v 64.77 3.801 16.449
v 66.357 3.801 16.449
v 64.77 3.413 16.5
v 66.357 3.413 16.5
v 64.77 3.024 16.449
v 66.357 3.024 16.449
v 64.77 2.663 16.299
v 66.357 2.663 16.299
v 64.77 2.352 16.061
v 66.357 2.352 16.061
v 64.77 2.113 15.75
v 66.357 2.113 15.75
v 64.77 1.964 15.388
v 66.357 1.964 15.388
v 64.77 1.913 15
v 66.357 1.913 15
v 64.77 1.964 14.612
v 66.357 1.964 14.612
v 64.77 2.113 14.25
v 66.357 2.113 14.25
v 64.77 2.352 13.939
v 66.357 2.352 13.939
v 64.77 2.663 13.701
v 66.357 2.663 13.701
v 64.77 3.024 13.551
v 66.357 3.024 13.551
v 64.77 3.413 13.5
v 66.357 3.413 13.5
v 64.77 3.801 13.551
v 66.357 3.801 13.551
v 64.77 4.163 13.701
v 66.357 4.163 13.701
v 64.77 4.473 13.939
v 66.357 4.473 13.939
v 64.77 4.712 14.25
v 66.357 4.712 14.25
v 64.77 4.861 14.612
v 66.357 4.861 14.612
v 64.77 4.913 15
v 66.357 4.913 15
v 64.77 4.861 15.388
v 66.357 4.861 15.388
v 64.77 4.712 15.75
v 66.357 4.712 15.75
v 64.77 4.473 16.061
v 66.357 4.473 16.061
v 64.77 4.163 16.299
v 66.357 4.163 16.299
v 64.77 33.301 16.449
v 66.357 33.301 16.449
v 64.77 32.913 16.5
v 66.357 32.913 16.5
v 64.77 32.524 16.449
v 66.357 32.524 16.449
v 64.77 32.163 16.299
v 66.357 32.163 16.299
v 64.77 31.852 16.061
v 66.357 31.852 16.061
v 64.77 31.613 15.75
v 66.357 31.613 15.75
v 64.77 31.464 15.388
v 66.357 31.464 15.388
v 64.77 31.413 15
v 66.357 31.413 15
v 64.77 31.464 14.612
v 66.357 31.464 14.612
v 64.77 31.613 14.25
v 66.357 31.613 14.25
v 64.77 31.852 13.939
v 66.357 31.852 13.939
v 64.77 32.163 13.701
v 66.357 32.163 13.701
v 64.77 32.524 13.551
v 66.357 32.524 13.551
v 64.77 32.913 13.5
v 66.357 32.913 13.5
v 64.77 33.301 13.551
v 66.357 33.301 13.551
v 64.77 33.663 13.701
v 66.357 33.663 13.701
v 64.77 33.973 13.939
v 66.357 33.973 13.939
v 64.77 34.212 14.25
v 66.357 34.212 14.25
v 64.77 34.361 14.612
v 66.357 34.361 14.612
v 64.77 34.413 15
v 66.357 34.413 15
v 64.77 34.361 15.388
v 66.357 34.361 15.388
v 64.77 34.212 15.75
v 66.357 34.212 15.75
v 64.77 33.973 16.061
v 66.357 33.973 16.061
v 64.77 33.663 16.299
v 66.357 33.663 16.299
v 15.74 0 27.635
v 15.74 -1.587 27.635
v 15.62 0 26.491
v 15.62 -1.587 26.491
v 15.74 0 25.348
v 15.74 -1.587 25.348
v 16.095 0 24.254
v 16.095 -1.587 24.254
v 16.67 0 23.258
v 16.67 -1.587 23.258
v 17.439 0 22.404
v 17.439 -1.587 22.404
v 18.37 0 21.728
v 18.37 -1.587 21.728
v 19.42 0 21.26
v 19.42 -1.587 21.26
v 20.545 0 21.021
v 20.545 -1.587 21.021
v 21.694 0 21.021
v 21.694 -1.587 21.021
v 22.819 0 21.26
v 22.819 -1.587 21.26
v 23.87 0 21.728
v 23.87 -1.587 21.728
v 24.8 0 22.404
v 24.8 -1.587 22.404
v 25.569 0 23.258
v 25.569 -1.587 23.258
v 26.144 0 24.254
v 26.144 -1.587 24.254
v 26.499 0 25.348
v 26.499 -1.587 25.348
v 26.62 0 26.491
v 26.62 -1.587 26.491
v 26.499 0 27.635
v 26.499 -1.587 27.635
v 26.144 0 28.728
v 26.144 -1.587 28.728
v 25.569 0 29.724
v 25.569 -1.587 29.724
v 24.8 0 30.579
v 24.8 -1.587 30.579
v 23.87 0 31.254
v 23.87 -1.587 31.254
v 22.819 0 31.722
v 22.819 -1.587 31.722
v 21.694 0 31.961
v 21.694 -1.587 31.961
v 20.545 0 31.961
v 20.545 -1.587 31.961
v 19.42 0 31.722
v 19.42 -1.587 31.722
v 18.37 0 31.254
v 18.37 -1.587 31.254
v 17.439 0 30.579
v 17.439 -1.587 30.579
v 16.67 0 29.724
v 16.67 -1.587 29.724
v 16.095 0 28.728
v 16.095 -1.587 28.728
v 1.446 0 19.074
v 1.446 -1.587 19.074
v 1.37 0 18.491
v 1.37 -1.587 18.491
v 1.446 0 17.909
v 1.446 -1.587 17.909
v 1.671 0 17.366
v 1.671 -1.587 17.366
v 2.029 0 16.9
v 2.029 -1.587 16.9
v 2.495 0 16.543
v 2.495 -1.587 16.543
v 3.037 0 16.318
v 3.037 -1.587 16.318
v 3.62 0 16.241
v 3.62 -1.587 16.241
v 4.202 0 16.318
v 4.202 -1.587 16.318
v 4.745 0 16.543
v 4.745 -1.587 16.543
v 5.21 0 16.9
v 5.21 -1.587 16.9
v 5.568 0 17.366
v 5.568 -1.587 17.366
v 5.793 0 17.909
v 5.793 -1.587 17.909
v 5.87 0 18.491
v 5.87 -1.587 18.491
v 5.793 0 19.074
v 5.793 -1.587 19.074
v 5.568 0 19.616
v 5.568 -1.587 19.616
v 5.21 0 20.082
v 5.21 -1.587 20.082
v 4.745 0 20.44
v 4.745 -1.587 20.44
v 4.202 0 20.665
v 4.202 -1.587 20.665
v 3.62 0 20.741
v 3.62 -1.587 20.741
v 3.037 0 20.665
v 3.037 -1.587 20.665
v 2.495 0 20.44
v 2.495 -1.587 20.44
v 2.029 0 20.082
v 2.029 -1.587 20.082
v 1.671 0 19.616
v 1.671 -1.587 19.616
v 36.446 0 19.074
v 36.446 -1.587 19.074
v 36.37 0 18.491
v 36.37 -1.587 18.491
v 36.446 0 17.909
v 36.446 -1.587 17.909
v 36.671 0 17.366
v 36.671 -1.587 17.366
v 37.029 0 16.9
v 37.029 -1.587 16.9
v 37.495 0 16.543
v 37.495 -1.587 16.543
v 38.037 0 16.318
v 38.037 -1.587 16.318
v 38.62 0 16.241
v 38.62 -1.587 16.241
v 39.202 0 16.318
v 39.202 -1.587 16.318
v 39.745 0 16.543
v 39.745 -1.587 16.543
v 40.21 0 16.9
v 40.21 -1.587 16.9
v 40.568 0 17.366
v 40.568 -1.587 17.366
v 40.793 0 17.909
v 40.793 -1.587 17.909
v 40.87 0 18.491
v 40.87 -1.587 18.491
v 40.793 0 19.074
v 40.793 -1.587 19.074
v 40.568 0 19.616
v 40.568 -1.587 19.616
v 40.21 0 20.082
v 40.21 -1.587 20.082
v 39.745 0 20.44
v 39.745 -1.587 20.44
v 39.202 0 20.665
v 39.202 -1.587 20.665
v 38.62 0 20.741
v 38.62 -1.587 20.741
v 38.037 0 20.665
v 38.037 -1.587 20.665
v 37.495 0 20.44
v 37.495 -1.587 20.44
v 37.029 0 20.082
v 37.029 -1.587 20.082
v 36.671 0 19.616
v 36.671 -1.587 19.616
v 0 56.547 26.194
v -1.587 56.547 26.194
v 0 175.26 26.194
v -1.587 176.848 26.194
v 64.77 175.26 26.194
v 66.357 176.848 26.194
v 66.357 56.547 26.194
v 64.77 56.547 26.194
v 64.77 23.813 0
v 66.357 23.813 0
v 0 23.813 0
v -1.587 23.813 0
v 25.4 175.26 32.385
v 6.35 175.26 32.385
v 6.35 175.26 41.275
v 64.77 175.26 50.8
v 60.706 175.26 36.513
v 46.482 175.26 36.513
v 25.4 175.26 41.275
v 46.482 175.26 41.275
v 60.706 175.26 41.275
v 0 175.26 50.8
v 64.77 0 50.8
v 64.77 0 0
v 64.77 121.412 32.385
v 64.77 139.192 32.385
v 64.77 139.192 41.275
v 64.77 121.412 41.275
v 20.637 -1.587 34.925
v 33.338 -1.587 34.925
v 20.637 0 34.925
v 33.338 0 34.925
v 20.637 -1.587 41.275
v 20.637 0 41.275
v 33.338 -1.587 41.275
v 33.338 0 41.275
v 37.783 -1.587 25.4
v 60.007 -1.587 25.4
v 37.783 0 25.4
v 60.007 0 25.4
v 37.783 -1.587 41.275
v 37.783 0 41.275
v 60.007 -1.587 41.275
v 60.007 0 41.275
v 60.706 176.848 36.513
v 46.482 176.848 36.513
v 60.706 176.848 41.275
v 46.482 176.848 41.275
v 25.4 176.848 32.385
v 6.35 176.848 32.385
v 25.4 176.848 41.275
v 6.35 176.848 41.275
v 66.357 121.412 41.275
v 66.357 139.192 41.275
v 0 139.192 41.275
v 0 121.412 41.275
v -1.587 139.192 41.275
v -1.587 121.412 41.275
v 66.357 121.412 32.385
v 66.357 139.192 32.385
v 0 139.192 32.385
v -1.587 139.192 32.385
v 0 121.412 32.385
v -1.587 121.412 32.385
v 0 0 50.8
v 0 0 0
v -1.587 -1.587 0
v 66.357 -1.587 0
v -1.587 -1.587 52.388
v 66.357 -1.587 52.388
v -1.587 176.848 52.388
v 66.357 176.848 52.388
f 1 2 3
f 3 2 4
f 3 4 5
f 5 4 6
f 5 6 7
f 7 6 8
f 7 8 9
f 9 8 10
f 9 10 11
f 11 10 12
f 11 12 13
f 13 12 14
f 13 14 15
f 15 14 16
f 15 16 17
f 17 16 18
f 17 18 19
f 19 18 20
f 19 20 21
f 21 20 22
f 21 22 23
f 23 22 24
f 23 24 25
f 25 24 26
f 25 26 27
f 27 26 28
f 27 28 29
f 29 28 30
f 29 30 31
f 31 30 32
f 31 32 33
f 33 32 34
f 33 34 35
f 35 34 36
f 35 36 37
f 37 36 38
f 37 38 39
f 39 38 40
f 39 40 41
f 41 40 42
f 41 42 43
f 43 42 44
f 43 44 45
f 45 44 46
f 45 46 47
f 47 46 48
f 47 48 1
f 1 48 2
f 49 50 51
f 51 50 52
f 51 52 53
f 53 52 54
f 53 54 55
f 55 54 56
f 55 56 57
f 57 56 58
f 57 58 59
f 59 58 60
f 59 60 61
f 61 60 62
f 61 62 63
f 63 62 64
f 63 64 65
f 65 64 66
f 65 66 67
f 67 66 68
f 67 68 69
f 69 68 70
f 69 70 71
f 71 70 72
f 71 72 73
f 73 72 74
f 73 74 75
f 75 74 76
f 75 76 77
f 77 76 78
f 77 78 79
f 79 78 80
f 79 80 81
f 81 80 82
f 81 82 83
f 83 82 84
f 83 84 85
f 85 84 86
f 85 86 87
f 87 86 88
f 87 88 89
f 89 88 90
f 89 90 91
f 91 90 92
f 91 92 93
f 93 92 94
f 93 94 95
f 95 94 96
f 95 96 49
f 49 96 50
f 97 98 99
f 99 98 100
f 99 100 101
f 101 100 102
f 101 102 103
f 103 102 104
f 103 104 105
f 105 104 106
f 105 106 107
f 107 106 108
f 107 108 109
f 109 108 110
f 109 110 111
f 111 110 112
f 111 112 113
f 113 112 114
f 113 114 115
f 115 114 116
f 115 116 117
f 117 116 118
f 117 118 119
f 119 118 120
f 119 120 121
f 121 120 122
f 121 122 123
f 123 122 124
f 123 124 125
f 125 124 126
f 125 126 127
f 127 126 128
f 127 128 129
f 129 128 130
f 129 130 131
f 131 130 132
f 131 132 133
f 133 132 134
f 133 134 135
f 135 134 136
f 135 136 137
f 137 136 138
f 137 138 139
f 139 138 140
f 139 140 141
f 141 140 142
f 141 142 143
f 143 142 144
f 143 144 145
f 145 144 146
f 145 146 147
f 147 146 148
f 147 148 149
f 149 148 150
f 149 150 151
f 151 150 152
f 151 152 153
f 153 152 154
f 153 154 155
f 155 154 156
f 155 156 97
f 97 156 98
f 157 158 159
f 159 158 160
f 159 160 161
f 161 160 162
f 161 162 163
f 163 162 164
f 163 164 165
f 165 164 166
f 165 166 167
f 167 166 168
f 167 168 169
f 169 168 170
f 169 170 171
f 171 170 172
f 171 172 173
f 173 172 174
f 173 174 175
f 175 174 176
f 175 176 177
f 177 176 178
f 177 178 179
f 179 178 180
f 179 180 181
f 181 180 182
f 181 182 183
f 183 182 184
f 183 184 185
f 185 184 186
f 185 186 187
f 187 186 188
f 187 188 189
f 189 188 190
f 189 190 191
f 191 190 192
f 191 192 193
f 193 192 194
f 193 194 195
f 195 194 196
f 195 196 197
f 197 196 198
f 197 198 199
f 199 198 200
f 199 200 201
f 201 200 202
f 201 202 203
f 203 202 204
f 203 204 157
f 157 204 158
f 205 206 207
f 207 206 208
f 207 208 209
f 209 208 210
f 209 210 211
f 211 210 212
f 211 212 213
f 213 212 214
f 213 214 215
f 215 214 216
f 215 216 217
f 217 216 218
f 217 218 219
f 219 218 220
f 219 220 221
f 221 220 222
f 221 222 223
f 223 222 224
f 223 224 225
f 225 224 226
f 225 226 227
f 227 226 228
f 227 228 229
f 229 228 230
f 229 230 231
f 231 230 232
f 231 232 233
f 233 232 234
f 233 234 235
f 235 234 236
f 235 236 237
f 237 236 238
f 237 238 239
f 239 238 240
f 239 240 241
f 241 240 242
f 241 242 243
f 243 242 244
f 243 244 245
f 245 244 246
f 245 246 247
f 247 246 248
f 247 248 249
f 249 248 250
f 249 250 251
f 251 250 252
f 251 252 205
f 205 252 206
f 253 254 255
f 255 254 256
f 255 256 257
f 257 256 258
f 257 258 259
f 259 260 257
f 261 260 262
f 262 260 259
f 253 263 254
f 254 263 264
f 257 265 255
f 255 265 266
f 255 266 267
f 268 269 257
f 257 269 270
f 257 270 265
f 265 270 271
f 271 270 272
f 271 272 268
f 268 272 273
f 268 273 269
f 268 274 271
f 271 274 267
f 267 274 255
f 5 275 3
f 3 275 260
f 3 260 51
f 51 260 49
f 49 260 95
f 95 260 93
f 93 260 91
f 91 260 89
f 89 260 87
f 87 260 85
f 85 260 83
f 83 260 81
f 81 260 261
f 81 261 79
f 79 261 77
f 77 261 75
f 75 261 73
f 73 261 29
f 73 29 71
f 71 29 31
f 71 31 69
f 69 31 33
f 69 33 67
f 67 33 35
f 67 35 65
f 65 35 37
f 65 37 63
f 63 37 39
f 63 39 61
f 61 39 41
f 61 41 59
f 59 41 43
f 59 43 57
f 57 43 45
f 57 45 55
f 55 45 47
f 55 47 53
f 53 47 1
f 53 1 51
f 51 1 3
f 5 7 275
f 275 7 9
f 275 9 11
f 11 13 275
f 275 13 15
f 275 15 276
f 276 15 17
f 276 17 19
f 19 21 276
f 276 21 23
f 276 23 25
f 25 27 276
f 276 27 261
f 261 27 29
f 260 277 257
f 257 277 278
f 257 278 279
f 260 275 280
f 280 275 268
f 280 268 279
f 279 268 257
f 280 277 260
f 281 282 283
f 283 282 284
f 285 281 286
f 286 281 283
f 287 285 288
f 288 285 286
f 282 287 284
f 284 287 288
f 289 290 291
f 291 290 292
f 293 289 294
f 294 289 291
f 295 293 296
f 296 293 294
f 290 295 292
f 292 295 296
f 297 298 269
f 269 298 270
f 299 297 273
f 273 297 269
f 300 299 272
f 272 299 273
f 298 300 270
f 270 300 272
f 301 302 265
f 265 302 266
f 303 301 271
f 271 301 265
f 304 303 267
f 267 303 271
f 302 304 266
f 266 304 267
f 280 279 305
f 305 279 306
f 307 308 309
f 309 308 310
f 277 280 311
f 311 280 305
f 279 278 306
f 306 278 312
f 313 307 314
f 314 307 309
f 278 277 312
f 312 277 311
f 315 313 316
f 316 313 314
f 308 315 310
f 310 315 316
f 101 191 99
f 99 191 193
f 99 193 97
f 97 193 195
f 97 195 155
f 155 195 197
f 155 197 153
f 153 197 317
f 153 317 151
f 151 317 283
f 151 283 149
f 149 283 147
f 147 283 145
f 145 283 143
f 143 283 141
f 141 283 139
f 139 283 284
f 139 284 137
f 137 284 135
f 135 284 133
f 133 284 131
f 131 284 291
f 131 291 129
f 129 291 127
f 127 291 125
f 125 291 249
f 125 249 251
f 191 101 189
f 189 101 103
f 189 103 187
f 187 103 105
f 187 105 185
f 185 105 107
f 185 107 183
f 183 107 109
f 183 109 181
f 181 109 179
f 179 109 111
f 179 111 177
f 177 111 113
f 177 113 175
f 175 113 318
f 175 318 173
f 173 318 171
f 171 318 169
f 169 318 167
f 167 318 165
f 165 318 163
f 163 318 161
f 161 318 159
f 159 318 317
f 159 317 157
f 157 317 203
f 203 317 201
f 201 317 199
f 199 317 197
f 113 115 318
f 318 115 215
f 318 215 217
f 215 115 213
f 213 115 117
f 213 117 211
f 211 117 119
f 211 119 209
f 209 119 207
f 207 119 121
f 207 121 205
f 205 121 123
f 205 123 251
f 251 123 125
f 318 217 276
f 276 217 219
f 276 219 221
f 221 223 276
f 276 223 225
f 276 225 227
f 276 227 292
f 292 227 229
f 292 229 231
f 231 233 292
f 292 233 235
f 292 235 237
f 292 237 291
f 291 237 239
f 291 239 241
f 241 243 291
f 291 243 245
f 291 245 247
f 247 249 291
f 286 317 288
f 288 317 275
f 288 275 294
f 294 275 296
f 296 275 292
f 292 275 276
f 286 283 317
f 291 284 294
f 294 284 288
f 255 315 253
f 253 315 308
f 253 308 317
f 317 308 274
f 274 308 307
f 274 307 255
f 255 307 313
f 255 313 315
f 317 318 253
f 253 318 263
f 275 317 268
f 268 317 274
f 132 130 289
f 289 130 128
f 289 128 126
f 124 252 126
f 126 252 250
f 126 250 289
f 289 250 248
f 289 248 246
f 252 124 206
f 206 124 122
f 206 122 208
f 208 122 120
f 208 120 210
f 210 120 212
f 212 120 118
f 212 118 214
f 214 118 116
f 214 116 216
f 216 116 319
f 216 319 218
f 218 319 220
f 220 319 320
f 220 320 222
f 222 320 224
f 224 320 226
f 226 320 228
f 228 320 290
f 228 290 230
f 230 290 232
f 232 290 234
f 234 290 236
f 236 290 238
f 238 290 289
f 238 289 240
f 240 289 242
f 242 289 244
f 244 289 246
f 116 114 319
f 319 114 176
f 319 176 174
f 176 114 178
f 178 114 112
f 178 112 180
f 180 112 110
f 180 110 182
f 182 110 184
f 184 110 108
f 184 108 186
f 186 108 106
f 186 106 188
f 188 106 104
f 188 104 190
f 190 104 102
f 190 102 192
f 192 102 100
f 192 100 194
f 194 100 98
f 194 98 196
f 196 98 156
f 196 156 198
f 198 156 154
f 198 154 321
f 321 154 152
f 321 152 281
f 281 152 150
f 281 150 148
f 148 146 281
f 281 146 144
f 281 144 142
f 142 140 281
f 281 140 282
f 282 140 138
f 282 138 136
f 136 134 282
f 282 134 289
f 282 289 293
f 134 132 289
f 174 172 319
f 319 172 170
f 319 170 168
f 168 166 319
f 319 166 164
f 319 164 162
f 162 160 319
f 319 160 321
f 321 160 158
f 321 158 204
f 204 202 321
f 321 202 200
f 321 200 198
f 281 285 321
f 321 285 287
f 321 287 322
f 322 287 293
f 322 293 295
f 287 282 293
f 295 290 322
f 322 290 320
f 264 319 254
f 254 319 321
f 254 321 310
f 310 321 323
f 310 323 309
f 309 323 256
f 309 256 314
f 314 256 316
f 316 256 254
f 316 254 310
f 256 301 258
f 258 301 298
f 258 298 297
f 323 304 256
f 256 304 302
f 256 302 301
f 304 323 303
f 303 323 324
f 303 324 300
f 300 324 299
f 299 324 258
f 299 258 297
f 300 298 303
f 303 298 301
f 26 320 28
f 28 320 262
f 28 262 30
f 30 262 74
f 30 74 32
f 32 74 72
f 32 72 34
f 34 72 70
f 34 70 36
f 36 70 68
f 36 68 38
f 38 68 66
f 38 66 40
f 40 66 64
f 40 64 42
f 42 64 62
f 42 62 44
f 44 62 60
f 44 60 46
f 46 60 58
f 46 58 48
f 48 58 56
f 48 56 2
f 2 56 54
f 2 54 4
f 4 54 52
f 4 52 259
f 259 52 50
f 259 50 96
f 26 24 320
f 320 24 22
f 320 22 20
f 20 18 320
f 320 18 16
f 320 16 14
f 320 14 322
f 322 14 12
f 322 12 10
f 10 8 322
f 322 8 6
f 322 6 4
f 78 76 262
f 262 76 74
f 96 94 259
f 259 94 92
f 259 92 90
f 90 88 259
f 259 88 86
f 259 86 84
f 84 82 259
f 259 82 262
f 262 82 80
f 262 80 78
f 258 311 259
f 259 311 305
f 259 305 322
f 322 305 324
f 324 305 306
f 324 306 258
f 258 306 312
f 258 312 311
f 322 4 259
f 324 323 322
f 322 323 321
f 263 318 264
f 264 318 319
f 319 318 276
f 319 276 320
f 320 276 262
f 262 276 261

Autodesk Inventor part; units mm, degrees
ref_plane "YZ Plane" through (0, 0, 0) normal (1, 0, 0) x (0, 1, 0)
ref_plane "XZ Plane" through (0, 0, 0) normal (0, 1, 0) x (-1, 0, 0)
ref_plane "XY Plane" through (0, 0, 0) normal (0, 0, 1) x (1, 0, 0)
sketch "Sketch1" plane through (0, 0, 0) normal (0, 0, 1) x (1, 0, 0)
  line L0 (0, 0) -> (64.77, 0)
  line L1 (64.77, 0) -> (64.77, 175.26)
  line L2 (64.77, 175.26) -> (0, 175.26)
  line L3 (0, 175.26) -> (0, 0)
  dimension "d0" = 64.77
  dimension "d1" = 175.26
extrude "Extrusion1" add sketch "Sketch1" along normal blind 50.8
shell "Shell1" thickness 1.5875 outward yes removed faces 1 at (21.59, 116.84, 0)
sketch "Sketch2" plane through (0, 175.26, 0) normal (0, -1, 0) x (1, 0, 0)
  line L0 (64.77, 50.8) -> (0, 50.8) projected
  line L1 (64.77, 50.8) -> (0, 50.8)
  line L2 (0, 50.8) -> (0, 41.275)
  line L3 (0, 41.275) -> (64.77, 41.275)
  line L4 (64.77, 41.275) -> (64.77, 50.8)
  line L5 (60.706, 41.275) -> (46.482, 41.275)
  line L6 (46.482, 41.275) -> (46.482, 36.5125)
  line L7 (46.482, 36.5125) -> (60.706, 36.5125)
  line L8 (60.706, 36.5125) -> (60.706, 41.275)
  line L9 (25.4, 41.275) -> (6.35, 41.275)
  line L10 (6.35, 41.275) -> (6.35, 32.385)
  line L11 (6.35, 32.385) -> (25.4, 32.385)
  line L12 (25.4, 32.385) -> (25.4, 41.275)
  point P0 (0, 0)
  point P1 (6.35, 41.275)
  dimension "d5" = 9.525
  dimension "d6" = 64.77
  dimension "d7" = 4.7625
  dimension "d8" = 14.224
  dimension "d9" = 18.288
  dimension "d10" = 19.05
  dimension "d11" = 25.4
  dimension "d12" = 8.89
sketch "Sketch4" plane through (0, 0, 0) normal (0, 1, 0) x (1, 0, 0)
  line L0 (0, 0) -> (0, -50.8) projected
  line L1 (0, -50.8) -> (64.77, -50.8)
  line L2 (64.77, -50.8) -> (64.77, -41.275)
  line L3 (64.77, -41.275) -> (0, -41.275)
  line L4 (0, -41.275) -> (0, -50.8)
  line L5 (37.7825, -41.275) -> (60.0075, -41.275)
  line L6 (60.0075, -41.275) -> (60.0075, -25.4)
  line L7 (60.0075, -25.4) -> (37.7825, -25.4)
  line L8 (37.7825, -25.4) -> (37.7825, -41.275)
  line L9 (20.6375, -41.275) -> (33.3375, -41.275)
  line L10 (33.3375, -41.275) -> (33.3375, -34.925)
  line L11 (33.3375, -34.925) -> (20.6375, -34.925)
  line L12 (20.6375, -34.925) -> (20.6375, -41.275)
  dimension "d13" = 9.525
  dimension "d14" = 64.77
  dimension "d15" = 22.225
  dimension "d16" = 15.875
  dimension "d17" = 26.9875
  dimension "d18" = 12.7
  dimension "d19" = 6.35
  dimension "d20" = 33.3375
sketch "Sketch5" plane through (0, 0, 0) normal (1, 0, 0) x (0, 0, -1)
  line L0 (-50.8, 175.26) -> (-50.8, 0) projected
  line L1 (-50.8, 175.26) -> (-41.275, 175.26)
  line L2 (-41.275, 175.26) -> (-41.275, 0)
  line L3 (-41.275, 0) -> (-50.8, 0)
  line L4 (-50.8, 0) -> (-50.8, 175.26)
  line L5 (-41.275, 139.192) -> (-32.385, 139.192)
  line L6 (-32.385, 139.192) -> (-32.385, 121.412)
  line L7 (-32.385, 121.412) -> (-41.275, 121.412)
  line L8 (-41.275, 121.412) -> (-41.275, 139.192)
  point P0 (0, 0)
  dimension "d21" = 9.525
  dimension "d22" = 175.26
  dimension "d23" = 17.78
  dimension "d24" = 8.89
  dimension "d25" = 53.848
extrude "Extrusion2" cut sketch "Sketch5" along normal mid plane 171.45 contours L5 L6 L7 L2
extrude "Extrusion3" cut sketch "Sketch2" against normal blind 171.45 contours L8 L7 L6 L3 | L3 L12 L11 L10
extrude "Extrusion4" cut sketch "Sketch4" against normal blind 171.45 contours L12 L11 L10 L3 | L8 L7 L6 L3
sketch "Sketch6" plane through (-1.5875, -1.5875, 0) normal (-1, 0, 0) x (0, 0, 1)
  line L0 (0, 0) -> (52.3875, 0) projected
  line L1 (0, 0) -> (0, 25.4)
  line L2 (0, 176.8475) -> (0, 1.5875) projected
  line L3 (0, 25.4) -> (26.1938, 58.1347)
  line L4 (26.1938, 58.1347) -> (26.1938, 178.435)
  line L5 (0, 178.435) -> (52.3875, 178.435) projected
  line L6 (0, 178.435) -> (0, 25.4)
  dimension "d32" = 25.4
extrude "Extrusion5" cut sketch "Sketch6" against normal blind 171.45
sketch "Sketch7" plane through (-1.5875, -1.5875, 0) normal (0, -1, 0) x (1, 0, 0)
  circle A0 centre (5.207, 18.4912) radius 2.25
  line L0 (0, 0) -> (0, 52.3875) projected
  line L1 (0, 0) -> (67.945, 0) projected
  circle A1 centre (40.207, 18.4912) radius 2.25
  point P0 (1.5875, 0)
  dimension "d35" = 4.5
  dimension "d36" = 5.207
  dimension "d37" = 18.4912
  dimension "d38" = 4.5
  dimension "d39" = 35
extrude "Extrusion6" cut sketch "Sketch7" against normal blind 171.45
sketch "Sketch8" plane through (-1.5875, -1.5875, 0) normal (0, -1, 0) x (1, 0, 0)
  circle A0 centre (22.707, 26.4912) radius 5.5
  circle A1 centre (5.207, 18.4912) radius 2.25 projected
  point P0 (1.5875, 0)
  dimension "d42" = 11
  dimension "d43" = 8
  dimension "d44" = 17.5
extrude "Extrusion7" cut sketch "Sketch8" against normal blind 10 contours A0
sketch "Sketch9" plane through (66.3575, -1.5875, 52.3875) normal (1, 0, 0) x (0, 0, -1)
  circle A0 centre (37.3875, 5) radius 1.5
  circle A1 centre (37.3875, 34.5) radius 1.5
  line L0 (52.3875, 0) -> (0, 0) projected
  line L1 (52.3875, 0) -> (52.3875, 25.4) projected
  point P0 (52.3875, 1.5875)
  dimension "d47" = 3
  dimension "d48" = 3
  dimension "d49" = 29.5
  dimension "d50" = 5
  dimension "d51" = 15
  dimension "d52" = 15
extrude "Extrusion8" cut sketch "Sketch9" against normal blind 10
properties part number "_3DPrint"
